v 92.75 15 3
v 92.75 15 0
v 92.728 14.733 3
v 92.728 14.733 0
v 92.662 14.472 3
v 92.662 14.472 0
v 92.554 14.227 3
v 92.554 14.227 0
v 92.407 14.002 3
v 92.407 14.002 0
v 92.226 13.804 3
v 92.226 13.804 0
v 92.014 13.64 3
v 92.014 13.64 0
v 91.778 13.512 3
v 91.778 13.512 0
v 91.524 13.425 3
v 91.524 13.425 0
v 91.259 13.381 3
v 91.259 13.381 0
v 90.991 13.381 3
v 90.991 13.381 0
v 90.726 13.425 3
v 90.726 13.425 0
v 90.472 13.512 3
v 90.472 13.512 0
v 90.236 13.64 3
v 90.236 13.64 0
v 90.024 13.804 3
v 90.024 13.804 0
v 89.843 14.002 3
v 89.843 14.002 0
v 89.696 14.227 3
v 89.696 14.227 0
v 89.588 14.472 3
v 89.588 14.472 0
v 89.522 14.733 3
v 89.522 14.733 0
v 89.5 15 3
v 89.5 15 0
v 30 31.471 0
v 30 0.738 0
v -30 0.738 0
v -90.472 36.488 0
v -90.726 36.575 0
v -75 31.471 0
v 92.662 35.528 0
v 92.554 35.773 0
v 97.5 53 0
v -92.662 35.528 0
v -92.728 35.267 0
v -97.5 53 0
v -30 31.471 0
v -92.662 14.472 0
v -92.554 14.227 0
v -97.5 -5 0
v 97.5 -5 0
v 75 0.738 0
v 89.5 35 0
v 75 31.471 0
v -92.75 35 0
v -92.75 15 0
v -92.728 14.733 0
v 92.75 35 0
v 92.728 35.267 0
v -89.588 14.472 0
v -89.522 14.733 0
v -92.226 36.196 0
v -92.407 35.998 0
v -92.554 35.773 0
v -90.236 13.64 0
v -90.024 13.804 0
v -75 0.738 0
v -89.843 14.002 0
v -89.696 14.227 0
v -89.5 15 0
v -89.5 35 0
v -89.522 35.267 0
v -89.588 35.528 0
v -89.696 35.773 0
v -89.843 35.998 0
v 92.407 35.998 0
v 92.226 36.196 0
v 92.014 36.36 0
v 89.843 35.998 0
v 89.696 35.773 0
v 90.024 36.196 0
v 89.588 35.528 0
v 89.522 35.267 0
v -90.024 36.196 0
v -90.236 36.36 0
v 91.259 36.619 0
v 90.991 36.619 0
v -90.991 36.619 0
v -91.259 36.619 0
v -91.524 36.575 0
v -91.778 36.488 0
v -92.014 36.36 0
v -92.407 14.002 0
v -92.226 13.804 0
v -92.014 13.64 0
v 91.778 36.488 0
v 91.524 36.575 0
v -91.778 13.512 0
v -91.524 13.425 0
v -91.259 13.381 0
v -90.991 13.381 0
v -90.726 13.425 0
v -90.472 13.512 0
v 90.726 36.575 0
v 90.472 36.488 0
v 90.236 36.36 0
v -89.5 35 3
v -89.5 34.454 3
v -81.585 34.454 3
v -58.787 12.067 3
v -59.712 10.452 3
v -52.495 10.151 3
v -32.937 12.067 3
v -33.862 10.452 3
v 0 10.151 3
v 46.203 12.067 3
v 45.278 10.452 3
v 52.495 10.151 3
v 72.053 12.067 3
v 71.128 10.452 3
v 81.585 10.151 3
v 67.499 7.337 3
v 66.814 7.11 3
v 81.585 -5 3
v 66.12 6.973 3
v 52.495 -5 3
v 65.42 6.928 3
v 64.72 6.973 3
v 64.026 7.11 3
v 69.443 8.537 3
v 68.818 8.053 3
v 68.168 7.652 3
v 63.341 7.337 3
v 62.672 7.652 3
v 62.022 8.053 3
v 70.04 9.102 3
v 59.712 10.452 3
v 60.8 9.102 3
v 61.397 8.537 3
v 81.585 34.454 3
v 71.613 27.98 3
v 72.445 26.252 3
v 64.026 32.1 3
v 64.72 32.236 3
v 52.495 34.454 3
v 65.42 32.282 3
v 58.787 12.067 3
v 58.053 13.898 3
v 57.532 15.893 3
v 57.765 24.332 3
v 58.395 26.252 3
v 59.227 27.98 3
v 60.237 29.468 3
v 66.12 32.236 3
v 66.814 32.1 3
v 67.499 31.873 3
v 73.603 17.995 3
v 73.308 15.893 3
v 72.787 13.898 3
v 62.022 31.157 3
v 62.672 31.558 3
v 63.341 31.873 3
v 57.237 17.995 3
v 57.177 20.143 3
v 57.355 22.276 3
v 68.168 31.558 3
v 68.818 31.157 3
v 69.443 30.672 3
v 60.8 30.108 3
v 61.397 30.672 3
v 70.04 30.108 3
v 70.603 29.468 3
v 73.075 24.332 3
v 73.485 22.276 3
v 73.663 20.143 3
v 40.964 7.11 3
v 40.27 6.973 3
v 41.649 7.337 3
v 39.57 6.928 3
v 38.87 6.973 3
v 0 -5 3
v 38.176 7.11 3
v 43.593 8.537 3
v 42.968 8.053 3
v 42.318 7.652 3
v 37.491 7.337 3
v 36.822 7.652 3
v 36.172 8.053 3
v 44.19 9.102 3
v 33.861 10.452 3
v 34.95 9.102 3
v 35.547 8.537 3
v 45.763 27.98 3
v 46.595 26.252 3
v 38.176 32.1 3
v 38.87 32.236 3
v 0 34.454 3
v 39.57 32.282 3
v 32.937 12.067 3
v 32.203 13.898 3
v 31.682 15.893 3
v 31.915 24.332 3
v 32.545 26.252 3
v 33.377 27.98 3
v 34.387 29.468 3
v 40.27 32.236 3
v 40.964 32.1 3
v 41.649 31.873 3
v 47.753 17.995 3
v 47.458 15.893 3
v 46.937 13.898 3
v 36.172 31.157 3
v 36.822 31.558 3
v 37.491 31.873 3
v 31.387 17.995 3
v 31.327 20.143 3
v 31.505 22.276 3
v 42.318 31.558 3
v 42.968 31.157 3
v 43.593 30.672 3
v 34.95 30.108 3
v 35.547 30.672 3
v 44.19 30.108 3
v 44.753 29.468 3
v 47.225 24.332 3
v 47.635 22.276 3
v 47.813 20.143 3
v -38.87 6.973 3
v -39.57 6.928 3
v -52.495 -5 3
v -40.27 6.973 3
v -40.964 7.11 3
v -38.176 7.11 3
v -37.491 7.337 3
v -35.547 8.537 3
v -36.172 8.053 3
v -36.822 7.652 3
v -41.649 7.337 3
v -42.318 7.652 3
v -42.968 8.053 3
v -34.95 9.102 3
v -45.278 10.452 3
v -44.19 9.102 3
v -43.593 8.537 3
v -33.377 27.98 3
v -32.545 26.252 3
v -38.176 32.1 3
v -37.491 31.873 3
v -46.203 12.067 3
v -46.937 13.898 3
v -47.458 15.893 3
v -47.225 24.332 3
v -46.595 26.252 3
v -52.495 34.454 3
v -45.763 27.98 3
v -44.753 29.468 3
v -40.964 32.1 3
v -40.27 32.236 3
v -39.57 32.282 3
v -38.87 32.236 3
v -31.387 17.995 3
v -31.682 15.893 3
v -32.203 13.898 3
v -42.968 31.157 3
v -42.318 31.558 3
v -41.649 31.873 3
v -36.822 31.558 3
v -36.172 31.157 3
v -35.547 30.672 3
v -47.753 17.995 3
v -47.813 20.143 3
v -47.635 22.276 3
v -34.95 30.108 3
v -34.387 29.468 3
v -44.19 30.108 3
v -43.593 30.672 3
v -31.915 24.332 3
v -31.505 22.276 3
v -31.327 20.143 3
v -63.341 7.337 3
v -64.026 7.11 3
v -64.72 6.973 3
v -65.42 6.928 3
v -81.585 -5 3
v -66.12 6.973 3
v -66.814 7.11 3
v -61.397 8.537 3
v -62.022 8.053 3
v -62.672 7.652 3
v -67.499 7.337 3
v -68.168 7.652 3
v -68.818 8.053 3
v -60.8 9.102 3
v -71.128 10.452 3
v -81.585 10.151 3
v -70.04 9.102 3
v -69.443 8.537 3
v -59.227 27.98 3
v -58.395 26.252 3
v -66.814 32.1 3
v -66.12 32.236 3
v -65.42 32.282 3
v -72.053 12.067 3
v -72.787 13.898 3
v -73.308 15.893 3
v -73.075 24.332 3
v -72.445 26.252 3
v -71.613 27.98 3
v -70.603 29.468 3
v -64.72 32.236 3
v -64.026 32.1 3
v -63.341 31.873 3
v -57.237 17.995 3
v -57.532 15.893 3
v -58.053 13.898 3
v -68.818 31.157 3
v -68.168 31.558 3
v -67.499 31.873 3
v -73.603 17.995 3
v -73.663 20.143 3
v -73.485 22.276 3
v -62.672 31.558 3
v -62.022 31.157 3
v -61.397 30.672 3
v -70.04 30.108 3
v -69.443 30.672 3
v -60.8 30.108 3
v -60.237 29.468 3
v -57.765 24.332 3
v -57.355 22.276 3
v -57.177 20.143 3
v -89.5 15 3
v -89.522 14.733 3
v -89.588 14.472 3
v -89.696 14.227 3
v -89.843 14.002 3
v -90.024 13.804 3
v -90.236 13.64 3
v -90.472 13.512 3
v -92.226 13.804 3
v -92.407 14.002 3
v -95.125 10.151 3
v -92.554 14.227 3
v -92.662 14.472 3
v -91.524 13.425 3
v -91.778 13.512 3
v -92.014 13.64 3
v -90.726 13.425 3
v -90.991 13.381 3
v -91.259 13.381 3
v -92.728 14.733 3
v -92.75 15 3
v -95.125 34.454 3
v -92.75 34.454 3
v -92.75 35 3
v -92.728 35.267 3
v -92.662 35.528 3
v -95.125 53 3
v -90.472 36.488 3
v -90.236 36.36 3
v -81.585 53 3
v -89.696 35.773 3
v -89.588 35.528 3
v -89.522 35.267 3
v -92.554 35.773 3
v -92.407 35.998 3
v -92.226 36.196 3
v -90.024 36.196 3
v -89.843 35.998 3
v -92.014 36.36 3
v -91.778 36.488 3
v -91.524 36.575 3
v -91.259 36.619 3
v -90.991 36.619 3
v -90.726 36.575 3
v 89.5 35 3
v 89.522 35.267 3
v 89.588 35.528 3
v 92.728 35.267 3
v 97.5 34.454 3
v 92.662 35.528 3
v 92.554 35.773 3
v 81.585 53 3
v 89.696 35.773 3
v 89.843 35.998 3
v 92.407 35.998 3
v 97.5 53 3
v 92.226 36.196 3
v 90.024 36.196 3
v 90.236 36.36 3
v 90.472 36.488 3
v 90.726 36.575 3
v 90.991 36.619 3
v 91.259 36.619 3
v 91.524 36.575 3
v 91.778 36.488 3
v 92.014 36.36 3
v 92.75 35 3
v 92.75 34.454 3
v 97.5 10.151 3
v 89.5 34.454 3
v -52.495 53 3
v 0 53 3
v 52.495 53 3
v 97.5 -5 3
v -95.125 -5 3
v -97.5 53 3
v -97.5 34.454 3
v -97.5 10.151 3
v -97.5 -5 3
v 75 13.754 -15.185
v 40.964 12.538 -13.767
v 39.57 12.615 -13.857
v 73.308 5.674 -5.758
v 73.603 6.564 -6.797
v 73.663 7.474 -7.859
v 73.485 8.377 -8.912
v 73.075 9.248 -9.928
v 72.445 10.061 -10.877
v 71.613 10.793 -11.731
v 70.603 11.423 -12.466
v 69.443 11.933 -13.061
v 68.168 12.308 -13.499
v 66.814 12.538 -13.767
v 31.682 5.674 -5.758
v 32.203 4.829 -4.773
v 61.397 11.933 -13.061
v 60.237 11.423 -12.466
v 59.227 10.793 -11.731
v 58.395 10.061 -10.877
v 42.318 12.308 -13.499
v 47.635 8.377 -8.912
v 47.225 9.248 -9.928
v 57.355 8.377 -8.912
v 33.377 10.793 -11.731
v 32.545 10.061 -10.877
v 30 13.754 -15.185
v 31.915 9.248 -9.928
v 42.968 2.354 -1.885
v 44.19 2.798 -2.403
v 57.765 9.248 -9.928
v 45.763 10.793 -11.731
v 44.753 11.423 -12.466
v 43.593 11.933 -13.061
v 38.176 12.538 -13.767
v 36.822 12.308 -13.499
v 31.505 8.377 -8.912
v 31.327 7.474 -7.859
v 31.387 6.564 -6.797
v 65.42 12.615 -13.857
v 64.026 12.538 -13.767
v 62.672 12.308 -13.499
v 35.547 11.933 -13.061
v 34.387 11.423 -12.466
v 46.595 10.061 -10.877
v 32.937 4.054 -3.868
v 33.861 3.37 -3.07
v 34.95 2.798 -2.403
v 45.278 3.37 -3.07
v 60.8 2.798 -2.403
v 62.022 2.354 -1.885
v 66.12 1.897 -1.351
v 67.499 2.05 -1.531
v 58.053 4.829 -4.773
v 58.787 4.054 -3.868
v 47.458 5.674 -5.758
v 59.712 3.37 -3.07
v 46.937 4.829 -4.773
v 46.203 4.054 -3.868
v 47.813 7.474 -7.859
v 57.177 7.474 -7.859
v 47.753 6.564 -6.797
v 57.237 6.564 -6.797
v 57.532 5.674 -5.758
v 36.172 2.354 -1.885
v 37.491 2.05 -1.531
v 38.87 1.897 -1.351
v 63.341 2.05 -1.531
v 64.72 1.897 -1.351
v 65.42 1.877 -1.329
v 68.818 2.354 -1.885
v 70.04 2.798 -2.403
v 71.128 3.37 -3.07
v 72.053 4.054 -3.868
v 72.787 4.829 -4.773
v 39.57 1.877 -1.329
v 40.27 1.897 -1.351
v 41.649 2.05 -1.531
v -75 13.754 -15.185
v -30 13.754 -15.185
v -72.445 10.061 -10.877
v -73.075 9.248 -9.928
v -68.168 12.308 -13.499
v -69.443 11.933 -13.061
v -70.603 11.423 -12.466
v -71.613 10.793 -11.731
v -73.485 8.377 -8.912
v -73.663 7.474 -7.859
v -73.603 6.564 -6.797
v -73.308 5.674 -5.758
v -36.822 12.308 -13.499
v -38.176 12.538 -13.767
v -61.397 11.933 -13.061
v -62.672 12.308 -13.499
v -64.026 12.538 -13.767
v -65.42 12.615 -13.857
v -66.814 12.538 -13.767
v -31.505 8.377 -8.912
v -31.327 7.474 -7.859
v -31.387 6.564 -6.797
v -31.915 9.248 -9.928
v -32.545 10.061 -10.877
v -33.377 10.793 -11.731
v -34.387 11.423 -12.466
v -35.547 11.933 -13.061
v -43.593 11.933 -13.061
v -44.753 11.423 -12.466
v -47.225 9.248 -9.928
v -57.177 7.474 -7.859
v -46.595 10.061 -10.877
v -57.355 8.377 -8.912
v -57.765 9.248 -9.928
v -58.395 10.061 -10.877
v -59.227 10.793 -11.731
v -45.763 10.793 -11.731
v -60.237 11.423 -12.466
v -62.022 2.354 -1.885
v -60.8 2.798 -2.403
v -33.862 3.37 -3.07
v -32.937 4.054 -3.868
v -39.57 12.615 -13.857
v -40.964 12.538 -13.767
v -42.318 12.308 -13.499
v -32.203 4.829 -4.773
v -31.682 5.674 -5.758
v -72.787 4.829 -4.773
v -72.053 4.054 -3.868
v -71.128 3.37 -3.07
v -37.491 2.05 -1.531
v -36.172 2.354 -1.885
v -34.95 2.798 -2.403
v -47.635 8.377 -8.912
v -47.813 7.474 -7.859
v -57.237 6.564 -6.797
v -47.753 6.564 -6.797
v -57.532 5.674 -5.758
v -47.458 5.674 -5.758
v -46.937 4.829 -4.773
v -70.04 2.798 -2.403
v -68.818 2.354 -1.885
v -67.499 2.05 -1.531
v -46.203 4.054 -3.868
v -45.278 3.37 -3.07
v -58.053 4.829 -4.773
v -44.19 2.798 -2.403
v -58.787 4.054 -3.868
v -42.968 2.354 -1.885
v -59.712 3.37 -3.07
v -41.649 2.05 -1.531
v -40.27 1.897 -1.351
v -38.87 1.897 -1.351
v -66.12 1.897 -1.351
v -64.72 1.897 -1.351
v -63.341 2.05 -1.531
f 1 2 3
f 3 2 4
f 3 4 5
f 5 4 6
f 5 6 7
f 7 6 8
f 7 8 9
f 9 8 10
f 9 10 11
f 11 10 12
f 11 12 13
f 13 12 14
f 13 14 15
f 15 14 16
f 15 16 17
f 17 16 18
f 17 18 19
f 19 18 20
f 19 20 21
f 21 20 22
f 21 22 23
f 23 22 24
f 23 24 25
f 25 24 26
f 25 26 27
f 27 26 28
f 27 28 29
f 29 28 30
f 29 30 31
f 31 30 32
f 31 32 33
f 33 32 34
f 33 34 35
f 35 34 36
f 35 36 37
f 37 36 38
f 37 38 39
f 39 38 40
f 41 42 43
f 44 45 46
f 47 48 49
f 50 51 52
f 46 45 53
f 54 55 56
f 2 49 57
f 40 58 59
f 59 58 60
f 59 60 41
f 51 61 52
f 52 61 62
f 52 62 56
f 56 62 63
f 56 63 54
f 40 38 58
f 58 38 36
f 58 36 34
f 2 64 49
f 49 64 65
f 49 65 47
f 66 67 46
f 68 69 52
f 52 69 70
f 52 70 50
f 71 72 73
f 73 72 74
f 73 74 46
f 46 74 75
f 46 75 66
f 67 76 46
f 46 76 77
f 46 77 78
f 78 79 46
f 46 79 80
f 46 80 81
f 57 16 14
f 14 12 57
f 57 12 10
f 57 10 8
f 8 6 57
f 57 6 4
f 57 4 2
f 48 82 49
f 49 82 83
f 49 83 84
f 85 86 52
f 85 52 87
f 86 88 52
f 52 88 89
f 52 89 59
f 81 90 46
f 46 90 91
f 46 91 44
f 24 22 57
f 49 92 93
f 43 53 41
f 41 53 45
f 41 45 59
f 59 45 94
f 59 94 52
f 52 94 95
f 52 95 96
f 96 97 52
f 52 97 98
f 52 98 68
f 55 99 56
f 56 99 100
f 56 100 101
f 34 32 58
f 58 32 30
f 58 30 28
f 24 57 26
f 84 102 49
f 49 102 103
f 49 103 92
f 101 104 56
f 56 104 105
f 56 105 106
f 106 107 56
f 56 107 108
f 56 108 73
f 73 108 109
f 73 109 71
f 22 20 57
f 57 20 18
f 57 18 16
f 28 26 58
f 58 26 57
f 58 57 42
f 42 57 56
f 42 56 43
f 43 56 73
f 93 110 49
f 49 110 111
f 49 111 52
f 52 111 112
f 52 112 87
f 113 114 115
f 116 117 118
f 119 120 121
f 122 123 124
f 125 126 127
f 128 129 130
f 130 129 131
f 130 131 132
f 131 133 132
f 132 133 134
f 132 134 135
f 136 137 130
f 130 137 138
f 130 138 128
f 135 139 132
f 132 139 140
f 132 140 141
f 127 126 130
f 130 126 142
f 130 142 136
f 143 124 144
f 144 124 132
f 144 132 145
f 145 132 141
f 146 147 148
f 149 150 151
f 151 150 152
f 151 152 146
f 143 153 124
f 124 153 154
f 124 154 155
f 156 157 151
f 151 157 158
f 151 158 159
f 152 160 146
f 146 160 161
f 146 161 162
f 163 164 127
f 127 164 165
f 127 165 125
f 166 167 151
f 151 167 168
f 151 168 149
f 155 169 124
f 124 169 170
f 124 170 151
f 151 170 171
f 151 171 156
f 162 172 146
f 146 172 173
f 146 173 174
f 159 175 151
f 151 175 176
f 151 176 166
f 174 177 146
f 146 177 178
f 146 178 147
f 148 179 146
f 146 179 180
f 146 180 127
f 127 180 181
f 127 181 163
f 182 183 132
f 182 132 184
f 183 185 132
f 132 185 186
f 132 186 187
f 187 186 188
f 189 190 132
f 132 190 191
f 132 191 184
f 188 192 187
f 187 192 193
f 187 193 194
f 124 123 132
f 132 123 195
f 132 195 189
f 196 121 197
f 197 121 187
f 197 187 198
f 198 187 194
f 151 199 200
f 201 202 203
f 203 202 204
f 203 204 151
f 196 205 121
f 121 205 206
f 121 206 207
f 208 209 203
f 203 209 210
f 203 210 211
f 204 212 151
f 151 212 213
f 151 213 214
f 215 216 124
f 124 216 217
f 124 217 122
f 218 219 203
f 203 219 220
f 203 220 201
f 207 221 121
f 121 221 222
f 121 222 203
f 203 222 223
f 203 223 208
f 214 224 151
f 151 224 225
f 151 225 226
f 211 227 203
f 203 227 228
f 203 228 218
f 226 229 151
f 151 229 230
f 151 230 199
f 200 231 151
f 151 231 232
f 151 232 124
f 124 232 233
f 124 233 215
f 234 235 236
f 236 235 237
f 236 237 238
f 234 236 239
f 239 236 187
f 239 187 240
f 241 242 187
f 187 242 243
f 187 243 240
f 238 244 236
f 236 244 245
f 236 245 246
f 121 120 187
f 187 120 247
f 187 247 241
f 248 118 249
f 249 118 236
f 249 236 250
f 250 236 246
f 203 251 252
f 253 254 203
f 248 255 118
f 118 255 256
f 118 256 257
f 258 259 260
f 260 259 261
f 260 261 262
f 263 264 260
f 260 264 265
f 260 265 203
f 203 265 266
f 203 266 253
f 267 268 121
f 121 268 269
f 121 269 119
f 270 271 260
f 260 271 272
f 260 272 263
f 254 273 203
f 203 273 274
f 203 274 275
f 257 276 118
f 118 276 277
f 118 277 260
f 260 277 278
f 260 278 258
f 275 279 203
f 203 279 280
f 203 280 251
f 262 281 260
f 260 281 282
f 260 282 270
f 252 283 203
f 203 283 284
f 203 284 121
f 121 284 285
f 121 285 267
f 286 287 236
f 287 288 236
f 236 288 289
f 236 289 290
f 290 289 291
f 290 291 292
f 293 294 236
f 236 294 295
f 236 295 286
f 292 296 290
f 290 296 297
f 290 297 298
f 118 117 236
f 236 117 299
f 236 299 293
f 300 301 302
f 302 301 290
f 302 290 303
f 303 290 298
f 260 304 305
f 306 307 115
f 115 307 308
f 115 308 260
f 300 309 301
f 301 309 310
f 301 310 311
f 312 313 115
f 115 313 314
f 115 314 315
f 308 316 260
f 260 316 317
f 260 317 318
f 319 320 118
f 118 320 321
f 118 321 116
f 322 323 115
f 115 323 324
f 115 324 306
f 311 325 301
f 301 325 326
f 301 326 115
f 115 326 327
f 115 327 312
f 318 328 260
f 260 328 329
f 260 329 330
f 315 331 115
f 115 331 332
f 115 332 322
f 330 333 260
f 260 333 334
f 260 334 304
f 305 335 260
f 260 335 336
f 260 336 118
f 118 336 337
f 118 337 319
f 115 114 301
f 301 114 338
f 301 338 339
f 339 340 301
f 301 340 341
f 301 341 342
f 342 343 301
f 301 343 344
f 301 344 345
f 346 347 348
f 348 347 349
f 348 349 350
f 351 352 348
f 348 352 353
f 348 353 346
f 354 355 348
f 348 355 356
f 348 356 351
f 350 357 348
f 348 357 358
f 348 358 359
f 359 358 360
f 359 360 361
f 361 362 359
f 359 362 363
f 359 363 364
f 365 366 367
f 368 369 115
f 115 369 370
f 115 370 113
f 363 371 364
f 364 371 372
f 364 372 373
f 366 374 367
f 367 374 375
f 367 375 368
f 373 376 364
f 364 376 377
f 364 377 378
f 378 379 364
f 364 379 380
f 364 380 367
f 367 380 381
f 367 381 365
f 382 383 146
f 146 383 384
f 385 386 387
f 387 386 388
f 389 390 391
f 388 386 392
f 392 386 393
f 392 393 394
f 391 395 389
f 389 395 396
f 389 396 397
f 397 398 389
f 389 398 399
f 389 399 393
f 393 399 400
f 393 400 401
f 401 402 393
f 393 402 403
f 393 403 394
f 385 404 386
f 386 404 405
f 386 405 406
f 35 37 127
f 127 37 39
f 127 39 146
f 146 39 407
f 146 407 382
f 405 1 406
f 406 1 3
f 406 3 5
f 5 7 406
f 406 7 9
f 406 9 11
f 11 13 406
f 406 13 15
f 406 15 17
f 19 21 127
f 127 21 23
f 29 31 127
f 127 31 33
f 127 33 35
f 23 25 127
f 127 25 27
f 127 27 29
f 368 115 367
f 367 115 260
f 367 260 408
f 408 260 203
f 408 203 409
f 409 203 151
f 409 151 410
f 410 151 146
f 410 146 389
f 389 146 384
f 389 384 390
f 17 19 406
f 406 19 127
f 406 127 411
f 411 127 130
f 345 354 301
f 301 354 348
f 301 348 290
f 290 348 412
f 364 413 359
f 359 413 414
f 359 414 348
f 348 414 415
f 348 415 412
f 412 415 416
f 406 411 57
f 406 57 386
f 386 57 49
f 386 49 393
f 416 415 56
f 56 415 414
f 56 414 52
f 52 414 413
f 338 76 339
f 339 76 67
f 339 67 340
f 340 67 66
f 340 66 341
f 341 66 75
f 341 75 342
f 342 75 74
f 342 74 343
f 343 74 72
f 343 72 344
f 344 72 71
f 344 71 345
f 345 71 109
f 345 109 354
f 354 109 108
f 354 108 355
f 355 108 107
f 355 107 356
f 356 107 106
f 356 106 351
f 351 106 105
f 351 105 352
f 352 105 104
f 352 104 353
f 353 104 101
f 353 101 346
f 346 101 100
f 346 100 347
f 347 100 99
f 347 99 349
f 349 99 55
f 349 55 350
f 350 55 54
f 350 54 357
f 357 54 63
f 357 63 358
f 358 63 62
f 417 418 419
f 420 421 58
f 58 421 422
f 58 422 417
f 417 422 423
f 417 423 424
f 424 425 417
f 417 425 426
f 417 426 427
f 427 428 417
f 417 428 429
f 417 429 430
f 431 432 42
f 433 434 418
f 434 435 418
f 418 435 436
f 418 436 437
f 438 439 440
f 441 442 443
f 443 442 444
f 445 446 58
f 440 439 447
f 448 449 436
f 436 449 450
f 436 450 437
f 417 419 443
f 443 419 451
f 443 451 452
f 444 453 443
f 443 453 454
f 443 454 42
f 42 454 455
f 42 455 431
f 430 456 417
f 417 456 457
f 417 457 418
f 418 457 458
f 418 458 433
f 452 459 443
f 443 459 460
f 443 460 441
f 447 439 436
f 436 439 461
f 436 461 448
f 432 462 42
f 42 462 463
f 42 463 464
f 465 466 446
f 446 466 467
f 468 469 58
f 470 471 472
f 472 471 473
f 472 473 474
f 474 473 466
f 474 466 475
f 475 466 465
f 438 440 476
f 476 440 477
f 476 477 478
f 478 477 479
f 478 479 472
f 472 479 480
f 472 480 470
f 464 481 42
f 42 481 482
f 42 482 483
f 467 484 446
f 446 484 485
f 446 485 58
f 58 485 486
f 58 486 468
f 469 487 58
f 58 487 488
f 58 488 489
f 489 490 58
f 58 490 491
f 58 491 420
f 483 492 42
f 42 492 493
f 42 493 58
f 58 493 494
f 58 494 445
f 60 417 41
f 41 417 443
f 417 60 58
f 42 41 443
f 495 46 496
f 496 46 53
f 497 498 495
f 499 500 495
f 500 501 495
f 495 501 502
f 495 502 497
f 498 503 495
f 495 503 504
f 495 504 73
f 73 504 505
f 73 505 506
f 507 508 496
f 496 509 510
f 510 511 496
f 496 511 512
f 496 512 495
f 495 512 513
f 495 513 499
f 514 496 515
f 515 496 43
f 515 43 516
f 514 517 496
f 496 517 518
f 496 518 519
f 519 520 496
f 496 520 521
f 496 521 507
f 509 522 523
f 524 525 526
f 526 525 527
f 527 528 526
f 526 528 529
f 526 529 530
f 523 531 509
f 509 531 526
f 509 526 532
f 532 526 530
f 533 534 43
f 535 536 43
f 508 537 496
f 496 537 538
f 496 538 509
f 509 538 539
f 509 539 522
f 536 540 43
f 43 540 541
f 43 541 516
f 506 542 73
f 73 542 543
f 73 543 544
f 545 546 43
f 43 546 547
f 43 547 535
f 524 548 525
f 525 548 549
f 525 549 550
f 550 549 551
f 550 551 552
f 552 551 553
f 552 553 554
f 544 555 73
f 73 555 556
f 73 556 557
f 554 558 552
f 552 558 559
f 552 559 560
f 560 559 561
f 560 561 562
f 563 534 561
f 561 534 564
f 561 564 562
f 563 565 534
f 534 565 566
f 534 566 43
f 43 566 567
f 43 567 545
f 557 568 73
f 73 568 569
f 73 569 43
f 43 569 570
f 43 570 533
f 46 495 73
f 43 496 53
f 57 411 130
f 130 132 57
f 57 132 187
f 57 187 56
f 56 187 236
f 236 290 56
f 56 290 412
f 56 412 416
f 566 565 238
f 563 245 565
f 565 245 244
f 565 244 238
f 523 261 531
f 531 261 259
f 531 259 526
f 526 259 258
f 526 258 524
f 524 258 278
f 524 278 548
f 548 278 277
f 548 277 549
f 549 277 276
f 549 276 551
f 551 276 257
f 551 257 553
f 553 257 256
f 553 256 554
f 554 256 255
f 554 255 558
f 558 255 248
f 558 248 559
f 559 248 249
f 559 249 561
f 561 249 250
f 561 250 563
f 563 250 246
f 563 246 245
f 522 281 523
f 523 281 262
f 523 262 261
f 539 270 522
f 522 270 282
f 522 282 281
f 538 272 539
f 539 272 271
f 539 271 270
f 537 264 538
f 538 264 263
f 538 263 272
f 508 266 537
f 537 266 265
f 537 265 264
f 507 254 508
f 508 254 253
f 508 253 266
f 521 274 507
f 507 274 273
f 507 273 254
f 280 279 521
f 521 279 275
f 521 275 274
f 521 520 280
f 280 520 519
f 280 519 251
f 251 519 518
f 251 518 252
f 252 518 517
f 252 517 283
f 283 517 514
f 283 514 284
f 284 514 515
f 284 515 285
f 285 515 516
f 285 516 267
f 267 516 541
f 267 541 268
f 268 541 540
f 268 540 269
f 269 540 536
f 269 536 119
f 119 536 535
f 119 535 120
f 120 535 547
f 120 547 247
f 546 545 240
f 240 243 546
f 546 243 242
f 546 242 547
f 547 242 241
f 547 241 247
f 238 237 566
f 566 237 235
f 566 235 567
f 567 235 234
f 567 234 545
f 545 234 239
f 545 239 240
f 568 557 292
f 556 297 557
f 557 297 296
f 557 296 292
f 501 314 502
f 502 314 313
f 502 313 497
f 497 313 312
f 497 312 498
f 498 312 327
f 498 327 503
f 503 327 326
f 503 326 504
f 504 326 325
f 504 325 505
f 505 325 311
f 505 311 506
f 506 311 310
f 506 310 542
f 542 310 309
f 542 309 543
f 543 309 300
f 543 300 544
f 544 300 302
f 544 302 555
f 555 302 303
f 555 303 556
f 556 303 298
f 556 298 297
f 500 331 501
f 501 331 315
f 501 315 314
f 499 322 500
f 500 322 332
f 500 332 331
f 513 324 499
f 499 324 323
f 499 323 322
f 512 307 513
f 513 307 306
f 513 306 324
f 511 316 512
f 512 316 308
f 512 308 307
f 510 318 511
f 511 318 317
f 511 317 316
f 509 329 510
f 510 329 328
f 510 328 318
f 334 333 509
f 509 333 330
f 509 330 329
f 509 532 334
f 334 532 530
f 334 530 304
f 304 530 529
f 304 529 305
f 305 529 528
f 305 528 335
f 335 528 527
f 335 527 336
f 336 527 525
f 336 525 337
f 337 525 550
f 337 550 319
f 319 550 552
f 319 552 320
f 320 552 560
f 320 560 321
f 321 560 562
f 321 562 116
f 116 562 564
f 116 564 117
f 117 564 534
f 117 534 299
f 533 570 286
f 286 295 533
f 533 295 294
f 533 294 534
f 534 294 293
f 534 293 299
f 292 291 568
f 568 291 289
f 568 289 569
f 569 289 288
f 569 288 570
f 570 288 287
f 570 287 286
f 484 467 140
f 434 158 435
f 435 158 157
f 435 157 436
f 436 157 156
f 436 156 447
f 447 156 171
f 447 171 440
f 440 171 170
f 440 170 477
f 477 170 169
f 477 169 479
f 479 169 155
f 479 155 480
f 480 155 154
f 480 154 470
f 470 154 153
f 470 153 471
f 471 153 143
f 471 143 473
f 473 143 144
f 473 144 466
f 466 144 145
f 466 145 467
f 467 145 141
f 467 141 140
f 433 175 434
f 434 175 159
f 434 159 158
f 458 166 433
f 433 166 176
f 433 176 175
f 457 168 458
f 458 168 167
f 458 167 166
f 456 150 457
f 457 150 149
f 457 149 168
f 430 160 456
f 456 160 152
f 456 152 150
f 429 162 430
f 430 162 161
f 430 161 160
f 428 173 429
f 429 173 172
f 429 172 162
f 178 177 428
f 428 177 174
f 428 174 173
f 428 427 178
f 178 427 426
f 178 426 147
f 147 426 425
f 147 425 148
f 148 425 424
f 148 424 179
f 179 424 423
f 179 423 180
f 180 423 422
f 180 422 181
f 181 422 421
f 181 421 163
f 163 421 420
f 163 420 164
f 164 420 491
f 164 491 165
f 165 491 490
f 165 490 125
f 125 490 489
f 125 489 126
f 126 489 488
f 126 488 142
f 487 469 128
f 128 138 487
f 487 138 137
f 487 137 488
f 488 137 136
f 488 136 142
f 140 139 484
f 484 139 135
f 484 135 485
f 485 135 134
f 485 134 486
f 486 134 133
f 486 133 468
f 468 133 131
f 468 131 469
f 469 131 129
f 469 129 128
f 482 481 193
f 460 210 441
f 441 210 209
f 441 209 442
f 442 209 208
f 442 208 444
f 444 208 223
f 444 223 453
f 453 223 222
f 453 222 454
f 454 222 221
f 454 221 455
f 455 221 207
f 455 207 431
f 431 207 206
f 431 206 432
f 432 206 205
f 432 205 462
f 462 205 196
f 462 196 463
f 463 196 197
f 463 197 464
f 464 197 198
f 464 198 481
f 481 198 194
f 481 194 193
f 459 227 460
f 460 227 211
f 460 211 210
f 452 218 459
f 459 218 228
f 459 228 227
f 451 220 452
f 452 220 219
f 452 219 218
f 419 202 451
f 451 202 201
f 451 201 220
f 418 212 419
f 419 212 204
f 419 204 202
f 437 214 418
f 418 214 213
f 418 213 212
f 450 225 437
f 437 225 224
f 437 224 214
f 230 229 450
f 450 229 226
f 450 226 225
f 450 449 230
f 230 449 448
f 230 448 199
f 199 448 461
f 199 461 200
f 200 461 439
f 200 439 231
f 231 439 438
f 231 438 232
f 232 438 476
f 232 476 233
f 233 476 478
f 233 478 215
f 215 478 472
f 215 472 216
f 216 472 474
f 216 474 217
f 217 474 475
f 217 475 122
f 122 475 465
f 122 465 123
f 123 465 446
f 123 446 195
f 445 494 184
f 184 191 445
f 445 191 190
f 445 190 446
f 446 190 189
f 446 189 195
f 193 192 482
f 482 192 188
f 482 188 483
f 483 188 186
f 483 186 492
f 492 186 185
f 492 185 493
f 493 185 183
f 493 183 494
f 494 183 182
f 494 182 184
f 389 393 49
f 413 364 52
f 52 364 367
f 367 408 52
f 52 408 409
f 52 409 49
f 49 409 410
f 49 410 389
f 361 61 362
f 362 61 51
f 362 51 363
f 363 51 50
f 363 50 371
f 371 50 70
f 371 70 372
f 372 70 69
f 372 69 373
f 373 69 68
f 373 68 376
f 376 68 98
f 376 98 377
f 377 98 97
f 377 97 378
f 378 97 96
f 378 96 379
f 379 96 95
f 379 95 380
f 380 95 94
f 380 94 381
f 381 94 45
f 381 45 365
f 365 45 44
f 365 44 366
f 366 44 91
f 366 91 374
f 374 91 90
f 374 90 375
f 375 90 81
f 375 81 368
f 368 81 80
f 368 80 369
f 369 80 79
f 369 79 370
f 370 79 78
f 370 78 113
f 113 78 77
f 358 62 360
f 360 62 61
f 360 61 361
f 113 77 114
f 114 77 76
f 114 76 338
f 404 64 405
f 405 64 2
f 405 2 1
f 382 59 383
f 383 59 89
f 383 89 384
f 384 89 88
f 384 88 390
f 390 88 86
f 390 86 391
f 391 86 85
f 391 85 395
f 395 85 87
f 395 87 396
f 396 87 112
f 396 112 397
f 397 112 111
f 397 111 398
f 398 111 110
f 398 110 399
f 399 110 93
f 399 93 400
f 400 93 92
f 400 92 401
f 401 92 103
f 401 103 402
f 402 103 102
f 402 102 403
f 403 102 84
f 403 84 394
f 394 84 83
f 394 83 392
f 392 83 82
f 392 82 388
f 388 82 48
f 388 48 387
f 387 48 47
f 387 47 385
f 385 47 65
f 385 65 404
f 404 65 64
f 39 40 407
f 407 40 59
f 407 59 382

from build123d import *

# Parameters (mm, degrees)
CROQUIS1_W              = 195
CROQUIS1_H              = 38
CROQUIS1_R              = 1.625
SALIENTE_EXTRUIR1_DEPTH = 3
SALIENTE_EXTRUIR2_START = -67.5
SALIENTE_EXTRUIR2_DEPTH = 45
SALIENTE_EXTRUIR3_START = -67.5
SALIENTE_EXTRUIR3_DEPTH = 45
CROQUIS8_W              = 195
CROQUIS8_H              = 3
SALIENTE_EXTRUIR5_DEPTH = 5
CROQUIS9_R              = 8.25
CORTAR_EXTRUIR4_DEPTH   = 106.640382748
CROQUIS10_W             = 195
CROQUIS10_H             = 3
SALIENTE_EXTRUIR6_DEPTH = 15
CORTAR_EXTRUIR5_DEPTH   = 15


with BuildPart() as part:
    # Croquis1 → Saliente-Extruir1 (new body)
    with BuildSketch(Plane.XY):
        with Locations((0, 19)):
            Rectangle(CROQUIS1_W, CROQUIS1_H)
        with Locations((91.125, 15)):
            Circle(CROQUIS1_R, mode=Mode.SUBTRACT)
        with Locations(Location((-91.125, 15, 0), (0, 0, 180))):
            Circle(CROQUIS1_R, mode=Mode.SUBTRACT)
    extrude(amount=SALIENTE_EXTRUIR1_DEPTH)

    # Croquis2 → Saliente-Extruir2 (add)
    with BuildSketch(Plane(origin=(97.5, 0, 0), x_dir=(0, 0, -1), z_dir=(1, 0, 0)).offset(SALIENTE_EXTRUIR2_START)):
        Polygon((0, 0.738403157), (3.429565646, 3.677896428), (15.185426147, 13.753887502), (0, 31.471028189), align=None)
    extrude(amount=SALIENTE_EXTRUIR2_DEPTH)

    # Croquis4 → Saliente-Extruir3 (add)
    with BuildSketch(Plane.ZY.offset(97.5).offset(SALIENTE_EXTRUIR3_START)):
        Polygon((0, 0.738403157), (-15.185426147, 13.753887502), (0, 31.471028189), align=None)
    extrude(amount=SALIENTE_EXTRUIR3_DEPTH)

    # Croquis8 → Saliente-Extruir5 (add)
    with BuildSketch(Plane.XZ):
        with Locations((0, 1.5)):
            Rectangle(CROQUIS8_W, CROQUIS8_H)
    extrude(amount=SALIENTE_EXTRUIR5_DEPTH)

    # Croquis9 → Cortar-Extruir4 (cut, through all)
    with BuildSketch(Plane(origin=(0, 0.425684191, 0.364855478), x_dir=(1, 0, 0), z_dir=(0, -0.7592713073348798, -0.6507742172658522))):
        with Locations(Location((-65.42, -10.480533736, 0), (0, 0, 270))):
            Circle(CROQUIS9_R)
        with Locations(Location((-39.57, -10.480533736, 0), (0, 0, 270))):
            Circle(CROQUIS9_R)
        with Locations(Location((39.57, -10.480533736, 0), (0, 0, 90))):
            Circle(CROQUIS9_R)
        with Locations(Location((65.42, -10.480533736, 0), (0, 0, 90))):
            Circle(CROQUIS9_R)
    extrude(amount=-CORTAR_EXTRUIR4_DEPTH, mode=Mode.SUBTRACT)

    # Croquis10 → Saliente-Extruir6 (add)
    with BuildSketch(Plane(origin=(0, 38, 0), x_dir=(1, 0, 0), z_dir=(0, 1, 0))):
        with Locations((0, -1.5)):
            Rectangle(CROQUIS10_W, CROQUIS10_H)
    extrude(amount=SALIENTE_EXTRUIR6_DEPTH)

    # Croquis11 → Cortar-Extruir5 (cut)
    with BuildSketch(Plane(origin=(0, 0, 0), x_dir=(-1, 0, 0), z_dir=(0, 0, -1))):
        with BuildLine():
            Line((-92.75, 15), (-92.75, 35))
            ThreePointArc((-92.75, 35), (-91.125, 36.625), (-89.5, 35))
            Line((-89.5, 35), (-89.5, 15))
            ThreePointArc((-89.5, 15), (-91.125, 13.375), (-92.75, 15))
        make_face()
        with BuildLine():
            Line((89.5, 35), (89.5, 15))
            ThreePointArc((89.5, 15), (91.125, 13.375), (92.75, 15))
            Line((92.75, 15), (92.75, 35))
            ThreePointArc((92.75, 35), (91.125, 36.625), (89.5, 35))
        make_face()
    extrude(amount=-CORTAR_EXTRUIR5_DEPTH, mode=Mode.SUBTRACT)


solid = part.part
